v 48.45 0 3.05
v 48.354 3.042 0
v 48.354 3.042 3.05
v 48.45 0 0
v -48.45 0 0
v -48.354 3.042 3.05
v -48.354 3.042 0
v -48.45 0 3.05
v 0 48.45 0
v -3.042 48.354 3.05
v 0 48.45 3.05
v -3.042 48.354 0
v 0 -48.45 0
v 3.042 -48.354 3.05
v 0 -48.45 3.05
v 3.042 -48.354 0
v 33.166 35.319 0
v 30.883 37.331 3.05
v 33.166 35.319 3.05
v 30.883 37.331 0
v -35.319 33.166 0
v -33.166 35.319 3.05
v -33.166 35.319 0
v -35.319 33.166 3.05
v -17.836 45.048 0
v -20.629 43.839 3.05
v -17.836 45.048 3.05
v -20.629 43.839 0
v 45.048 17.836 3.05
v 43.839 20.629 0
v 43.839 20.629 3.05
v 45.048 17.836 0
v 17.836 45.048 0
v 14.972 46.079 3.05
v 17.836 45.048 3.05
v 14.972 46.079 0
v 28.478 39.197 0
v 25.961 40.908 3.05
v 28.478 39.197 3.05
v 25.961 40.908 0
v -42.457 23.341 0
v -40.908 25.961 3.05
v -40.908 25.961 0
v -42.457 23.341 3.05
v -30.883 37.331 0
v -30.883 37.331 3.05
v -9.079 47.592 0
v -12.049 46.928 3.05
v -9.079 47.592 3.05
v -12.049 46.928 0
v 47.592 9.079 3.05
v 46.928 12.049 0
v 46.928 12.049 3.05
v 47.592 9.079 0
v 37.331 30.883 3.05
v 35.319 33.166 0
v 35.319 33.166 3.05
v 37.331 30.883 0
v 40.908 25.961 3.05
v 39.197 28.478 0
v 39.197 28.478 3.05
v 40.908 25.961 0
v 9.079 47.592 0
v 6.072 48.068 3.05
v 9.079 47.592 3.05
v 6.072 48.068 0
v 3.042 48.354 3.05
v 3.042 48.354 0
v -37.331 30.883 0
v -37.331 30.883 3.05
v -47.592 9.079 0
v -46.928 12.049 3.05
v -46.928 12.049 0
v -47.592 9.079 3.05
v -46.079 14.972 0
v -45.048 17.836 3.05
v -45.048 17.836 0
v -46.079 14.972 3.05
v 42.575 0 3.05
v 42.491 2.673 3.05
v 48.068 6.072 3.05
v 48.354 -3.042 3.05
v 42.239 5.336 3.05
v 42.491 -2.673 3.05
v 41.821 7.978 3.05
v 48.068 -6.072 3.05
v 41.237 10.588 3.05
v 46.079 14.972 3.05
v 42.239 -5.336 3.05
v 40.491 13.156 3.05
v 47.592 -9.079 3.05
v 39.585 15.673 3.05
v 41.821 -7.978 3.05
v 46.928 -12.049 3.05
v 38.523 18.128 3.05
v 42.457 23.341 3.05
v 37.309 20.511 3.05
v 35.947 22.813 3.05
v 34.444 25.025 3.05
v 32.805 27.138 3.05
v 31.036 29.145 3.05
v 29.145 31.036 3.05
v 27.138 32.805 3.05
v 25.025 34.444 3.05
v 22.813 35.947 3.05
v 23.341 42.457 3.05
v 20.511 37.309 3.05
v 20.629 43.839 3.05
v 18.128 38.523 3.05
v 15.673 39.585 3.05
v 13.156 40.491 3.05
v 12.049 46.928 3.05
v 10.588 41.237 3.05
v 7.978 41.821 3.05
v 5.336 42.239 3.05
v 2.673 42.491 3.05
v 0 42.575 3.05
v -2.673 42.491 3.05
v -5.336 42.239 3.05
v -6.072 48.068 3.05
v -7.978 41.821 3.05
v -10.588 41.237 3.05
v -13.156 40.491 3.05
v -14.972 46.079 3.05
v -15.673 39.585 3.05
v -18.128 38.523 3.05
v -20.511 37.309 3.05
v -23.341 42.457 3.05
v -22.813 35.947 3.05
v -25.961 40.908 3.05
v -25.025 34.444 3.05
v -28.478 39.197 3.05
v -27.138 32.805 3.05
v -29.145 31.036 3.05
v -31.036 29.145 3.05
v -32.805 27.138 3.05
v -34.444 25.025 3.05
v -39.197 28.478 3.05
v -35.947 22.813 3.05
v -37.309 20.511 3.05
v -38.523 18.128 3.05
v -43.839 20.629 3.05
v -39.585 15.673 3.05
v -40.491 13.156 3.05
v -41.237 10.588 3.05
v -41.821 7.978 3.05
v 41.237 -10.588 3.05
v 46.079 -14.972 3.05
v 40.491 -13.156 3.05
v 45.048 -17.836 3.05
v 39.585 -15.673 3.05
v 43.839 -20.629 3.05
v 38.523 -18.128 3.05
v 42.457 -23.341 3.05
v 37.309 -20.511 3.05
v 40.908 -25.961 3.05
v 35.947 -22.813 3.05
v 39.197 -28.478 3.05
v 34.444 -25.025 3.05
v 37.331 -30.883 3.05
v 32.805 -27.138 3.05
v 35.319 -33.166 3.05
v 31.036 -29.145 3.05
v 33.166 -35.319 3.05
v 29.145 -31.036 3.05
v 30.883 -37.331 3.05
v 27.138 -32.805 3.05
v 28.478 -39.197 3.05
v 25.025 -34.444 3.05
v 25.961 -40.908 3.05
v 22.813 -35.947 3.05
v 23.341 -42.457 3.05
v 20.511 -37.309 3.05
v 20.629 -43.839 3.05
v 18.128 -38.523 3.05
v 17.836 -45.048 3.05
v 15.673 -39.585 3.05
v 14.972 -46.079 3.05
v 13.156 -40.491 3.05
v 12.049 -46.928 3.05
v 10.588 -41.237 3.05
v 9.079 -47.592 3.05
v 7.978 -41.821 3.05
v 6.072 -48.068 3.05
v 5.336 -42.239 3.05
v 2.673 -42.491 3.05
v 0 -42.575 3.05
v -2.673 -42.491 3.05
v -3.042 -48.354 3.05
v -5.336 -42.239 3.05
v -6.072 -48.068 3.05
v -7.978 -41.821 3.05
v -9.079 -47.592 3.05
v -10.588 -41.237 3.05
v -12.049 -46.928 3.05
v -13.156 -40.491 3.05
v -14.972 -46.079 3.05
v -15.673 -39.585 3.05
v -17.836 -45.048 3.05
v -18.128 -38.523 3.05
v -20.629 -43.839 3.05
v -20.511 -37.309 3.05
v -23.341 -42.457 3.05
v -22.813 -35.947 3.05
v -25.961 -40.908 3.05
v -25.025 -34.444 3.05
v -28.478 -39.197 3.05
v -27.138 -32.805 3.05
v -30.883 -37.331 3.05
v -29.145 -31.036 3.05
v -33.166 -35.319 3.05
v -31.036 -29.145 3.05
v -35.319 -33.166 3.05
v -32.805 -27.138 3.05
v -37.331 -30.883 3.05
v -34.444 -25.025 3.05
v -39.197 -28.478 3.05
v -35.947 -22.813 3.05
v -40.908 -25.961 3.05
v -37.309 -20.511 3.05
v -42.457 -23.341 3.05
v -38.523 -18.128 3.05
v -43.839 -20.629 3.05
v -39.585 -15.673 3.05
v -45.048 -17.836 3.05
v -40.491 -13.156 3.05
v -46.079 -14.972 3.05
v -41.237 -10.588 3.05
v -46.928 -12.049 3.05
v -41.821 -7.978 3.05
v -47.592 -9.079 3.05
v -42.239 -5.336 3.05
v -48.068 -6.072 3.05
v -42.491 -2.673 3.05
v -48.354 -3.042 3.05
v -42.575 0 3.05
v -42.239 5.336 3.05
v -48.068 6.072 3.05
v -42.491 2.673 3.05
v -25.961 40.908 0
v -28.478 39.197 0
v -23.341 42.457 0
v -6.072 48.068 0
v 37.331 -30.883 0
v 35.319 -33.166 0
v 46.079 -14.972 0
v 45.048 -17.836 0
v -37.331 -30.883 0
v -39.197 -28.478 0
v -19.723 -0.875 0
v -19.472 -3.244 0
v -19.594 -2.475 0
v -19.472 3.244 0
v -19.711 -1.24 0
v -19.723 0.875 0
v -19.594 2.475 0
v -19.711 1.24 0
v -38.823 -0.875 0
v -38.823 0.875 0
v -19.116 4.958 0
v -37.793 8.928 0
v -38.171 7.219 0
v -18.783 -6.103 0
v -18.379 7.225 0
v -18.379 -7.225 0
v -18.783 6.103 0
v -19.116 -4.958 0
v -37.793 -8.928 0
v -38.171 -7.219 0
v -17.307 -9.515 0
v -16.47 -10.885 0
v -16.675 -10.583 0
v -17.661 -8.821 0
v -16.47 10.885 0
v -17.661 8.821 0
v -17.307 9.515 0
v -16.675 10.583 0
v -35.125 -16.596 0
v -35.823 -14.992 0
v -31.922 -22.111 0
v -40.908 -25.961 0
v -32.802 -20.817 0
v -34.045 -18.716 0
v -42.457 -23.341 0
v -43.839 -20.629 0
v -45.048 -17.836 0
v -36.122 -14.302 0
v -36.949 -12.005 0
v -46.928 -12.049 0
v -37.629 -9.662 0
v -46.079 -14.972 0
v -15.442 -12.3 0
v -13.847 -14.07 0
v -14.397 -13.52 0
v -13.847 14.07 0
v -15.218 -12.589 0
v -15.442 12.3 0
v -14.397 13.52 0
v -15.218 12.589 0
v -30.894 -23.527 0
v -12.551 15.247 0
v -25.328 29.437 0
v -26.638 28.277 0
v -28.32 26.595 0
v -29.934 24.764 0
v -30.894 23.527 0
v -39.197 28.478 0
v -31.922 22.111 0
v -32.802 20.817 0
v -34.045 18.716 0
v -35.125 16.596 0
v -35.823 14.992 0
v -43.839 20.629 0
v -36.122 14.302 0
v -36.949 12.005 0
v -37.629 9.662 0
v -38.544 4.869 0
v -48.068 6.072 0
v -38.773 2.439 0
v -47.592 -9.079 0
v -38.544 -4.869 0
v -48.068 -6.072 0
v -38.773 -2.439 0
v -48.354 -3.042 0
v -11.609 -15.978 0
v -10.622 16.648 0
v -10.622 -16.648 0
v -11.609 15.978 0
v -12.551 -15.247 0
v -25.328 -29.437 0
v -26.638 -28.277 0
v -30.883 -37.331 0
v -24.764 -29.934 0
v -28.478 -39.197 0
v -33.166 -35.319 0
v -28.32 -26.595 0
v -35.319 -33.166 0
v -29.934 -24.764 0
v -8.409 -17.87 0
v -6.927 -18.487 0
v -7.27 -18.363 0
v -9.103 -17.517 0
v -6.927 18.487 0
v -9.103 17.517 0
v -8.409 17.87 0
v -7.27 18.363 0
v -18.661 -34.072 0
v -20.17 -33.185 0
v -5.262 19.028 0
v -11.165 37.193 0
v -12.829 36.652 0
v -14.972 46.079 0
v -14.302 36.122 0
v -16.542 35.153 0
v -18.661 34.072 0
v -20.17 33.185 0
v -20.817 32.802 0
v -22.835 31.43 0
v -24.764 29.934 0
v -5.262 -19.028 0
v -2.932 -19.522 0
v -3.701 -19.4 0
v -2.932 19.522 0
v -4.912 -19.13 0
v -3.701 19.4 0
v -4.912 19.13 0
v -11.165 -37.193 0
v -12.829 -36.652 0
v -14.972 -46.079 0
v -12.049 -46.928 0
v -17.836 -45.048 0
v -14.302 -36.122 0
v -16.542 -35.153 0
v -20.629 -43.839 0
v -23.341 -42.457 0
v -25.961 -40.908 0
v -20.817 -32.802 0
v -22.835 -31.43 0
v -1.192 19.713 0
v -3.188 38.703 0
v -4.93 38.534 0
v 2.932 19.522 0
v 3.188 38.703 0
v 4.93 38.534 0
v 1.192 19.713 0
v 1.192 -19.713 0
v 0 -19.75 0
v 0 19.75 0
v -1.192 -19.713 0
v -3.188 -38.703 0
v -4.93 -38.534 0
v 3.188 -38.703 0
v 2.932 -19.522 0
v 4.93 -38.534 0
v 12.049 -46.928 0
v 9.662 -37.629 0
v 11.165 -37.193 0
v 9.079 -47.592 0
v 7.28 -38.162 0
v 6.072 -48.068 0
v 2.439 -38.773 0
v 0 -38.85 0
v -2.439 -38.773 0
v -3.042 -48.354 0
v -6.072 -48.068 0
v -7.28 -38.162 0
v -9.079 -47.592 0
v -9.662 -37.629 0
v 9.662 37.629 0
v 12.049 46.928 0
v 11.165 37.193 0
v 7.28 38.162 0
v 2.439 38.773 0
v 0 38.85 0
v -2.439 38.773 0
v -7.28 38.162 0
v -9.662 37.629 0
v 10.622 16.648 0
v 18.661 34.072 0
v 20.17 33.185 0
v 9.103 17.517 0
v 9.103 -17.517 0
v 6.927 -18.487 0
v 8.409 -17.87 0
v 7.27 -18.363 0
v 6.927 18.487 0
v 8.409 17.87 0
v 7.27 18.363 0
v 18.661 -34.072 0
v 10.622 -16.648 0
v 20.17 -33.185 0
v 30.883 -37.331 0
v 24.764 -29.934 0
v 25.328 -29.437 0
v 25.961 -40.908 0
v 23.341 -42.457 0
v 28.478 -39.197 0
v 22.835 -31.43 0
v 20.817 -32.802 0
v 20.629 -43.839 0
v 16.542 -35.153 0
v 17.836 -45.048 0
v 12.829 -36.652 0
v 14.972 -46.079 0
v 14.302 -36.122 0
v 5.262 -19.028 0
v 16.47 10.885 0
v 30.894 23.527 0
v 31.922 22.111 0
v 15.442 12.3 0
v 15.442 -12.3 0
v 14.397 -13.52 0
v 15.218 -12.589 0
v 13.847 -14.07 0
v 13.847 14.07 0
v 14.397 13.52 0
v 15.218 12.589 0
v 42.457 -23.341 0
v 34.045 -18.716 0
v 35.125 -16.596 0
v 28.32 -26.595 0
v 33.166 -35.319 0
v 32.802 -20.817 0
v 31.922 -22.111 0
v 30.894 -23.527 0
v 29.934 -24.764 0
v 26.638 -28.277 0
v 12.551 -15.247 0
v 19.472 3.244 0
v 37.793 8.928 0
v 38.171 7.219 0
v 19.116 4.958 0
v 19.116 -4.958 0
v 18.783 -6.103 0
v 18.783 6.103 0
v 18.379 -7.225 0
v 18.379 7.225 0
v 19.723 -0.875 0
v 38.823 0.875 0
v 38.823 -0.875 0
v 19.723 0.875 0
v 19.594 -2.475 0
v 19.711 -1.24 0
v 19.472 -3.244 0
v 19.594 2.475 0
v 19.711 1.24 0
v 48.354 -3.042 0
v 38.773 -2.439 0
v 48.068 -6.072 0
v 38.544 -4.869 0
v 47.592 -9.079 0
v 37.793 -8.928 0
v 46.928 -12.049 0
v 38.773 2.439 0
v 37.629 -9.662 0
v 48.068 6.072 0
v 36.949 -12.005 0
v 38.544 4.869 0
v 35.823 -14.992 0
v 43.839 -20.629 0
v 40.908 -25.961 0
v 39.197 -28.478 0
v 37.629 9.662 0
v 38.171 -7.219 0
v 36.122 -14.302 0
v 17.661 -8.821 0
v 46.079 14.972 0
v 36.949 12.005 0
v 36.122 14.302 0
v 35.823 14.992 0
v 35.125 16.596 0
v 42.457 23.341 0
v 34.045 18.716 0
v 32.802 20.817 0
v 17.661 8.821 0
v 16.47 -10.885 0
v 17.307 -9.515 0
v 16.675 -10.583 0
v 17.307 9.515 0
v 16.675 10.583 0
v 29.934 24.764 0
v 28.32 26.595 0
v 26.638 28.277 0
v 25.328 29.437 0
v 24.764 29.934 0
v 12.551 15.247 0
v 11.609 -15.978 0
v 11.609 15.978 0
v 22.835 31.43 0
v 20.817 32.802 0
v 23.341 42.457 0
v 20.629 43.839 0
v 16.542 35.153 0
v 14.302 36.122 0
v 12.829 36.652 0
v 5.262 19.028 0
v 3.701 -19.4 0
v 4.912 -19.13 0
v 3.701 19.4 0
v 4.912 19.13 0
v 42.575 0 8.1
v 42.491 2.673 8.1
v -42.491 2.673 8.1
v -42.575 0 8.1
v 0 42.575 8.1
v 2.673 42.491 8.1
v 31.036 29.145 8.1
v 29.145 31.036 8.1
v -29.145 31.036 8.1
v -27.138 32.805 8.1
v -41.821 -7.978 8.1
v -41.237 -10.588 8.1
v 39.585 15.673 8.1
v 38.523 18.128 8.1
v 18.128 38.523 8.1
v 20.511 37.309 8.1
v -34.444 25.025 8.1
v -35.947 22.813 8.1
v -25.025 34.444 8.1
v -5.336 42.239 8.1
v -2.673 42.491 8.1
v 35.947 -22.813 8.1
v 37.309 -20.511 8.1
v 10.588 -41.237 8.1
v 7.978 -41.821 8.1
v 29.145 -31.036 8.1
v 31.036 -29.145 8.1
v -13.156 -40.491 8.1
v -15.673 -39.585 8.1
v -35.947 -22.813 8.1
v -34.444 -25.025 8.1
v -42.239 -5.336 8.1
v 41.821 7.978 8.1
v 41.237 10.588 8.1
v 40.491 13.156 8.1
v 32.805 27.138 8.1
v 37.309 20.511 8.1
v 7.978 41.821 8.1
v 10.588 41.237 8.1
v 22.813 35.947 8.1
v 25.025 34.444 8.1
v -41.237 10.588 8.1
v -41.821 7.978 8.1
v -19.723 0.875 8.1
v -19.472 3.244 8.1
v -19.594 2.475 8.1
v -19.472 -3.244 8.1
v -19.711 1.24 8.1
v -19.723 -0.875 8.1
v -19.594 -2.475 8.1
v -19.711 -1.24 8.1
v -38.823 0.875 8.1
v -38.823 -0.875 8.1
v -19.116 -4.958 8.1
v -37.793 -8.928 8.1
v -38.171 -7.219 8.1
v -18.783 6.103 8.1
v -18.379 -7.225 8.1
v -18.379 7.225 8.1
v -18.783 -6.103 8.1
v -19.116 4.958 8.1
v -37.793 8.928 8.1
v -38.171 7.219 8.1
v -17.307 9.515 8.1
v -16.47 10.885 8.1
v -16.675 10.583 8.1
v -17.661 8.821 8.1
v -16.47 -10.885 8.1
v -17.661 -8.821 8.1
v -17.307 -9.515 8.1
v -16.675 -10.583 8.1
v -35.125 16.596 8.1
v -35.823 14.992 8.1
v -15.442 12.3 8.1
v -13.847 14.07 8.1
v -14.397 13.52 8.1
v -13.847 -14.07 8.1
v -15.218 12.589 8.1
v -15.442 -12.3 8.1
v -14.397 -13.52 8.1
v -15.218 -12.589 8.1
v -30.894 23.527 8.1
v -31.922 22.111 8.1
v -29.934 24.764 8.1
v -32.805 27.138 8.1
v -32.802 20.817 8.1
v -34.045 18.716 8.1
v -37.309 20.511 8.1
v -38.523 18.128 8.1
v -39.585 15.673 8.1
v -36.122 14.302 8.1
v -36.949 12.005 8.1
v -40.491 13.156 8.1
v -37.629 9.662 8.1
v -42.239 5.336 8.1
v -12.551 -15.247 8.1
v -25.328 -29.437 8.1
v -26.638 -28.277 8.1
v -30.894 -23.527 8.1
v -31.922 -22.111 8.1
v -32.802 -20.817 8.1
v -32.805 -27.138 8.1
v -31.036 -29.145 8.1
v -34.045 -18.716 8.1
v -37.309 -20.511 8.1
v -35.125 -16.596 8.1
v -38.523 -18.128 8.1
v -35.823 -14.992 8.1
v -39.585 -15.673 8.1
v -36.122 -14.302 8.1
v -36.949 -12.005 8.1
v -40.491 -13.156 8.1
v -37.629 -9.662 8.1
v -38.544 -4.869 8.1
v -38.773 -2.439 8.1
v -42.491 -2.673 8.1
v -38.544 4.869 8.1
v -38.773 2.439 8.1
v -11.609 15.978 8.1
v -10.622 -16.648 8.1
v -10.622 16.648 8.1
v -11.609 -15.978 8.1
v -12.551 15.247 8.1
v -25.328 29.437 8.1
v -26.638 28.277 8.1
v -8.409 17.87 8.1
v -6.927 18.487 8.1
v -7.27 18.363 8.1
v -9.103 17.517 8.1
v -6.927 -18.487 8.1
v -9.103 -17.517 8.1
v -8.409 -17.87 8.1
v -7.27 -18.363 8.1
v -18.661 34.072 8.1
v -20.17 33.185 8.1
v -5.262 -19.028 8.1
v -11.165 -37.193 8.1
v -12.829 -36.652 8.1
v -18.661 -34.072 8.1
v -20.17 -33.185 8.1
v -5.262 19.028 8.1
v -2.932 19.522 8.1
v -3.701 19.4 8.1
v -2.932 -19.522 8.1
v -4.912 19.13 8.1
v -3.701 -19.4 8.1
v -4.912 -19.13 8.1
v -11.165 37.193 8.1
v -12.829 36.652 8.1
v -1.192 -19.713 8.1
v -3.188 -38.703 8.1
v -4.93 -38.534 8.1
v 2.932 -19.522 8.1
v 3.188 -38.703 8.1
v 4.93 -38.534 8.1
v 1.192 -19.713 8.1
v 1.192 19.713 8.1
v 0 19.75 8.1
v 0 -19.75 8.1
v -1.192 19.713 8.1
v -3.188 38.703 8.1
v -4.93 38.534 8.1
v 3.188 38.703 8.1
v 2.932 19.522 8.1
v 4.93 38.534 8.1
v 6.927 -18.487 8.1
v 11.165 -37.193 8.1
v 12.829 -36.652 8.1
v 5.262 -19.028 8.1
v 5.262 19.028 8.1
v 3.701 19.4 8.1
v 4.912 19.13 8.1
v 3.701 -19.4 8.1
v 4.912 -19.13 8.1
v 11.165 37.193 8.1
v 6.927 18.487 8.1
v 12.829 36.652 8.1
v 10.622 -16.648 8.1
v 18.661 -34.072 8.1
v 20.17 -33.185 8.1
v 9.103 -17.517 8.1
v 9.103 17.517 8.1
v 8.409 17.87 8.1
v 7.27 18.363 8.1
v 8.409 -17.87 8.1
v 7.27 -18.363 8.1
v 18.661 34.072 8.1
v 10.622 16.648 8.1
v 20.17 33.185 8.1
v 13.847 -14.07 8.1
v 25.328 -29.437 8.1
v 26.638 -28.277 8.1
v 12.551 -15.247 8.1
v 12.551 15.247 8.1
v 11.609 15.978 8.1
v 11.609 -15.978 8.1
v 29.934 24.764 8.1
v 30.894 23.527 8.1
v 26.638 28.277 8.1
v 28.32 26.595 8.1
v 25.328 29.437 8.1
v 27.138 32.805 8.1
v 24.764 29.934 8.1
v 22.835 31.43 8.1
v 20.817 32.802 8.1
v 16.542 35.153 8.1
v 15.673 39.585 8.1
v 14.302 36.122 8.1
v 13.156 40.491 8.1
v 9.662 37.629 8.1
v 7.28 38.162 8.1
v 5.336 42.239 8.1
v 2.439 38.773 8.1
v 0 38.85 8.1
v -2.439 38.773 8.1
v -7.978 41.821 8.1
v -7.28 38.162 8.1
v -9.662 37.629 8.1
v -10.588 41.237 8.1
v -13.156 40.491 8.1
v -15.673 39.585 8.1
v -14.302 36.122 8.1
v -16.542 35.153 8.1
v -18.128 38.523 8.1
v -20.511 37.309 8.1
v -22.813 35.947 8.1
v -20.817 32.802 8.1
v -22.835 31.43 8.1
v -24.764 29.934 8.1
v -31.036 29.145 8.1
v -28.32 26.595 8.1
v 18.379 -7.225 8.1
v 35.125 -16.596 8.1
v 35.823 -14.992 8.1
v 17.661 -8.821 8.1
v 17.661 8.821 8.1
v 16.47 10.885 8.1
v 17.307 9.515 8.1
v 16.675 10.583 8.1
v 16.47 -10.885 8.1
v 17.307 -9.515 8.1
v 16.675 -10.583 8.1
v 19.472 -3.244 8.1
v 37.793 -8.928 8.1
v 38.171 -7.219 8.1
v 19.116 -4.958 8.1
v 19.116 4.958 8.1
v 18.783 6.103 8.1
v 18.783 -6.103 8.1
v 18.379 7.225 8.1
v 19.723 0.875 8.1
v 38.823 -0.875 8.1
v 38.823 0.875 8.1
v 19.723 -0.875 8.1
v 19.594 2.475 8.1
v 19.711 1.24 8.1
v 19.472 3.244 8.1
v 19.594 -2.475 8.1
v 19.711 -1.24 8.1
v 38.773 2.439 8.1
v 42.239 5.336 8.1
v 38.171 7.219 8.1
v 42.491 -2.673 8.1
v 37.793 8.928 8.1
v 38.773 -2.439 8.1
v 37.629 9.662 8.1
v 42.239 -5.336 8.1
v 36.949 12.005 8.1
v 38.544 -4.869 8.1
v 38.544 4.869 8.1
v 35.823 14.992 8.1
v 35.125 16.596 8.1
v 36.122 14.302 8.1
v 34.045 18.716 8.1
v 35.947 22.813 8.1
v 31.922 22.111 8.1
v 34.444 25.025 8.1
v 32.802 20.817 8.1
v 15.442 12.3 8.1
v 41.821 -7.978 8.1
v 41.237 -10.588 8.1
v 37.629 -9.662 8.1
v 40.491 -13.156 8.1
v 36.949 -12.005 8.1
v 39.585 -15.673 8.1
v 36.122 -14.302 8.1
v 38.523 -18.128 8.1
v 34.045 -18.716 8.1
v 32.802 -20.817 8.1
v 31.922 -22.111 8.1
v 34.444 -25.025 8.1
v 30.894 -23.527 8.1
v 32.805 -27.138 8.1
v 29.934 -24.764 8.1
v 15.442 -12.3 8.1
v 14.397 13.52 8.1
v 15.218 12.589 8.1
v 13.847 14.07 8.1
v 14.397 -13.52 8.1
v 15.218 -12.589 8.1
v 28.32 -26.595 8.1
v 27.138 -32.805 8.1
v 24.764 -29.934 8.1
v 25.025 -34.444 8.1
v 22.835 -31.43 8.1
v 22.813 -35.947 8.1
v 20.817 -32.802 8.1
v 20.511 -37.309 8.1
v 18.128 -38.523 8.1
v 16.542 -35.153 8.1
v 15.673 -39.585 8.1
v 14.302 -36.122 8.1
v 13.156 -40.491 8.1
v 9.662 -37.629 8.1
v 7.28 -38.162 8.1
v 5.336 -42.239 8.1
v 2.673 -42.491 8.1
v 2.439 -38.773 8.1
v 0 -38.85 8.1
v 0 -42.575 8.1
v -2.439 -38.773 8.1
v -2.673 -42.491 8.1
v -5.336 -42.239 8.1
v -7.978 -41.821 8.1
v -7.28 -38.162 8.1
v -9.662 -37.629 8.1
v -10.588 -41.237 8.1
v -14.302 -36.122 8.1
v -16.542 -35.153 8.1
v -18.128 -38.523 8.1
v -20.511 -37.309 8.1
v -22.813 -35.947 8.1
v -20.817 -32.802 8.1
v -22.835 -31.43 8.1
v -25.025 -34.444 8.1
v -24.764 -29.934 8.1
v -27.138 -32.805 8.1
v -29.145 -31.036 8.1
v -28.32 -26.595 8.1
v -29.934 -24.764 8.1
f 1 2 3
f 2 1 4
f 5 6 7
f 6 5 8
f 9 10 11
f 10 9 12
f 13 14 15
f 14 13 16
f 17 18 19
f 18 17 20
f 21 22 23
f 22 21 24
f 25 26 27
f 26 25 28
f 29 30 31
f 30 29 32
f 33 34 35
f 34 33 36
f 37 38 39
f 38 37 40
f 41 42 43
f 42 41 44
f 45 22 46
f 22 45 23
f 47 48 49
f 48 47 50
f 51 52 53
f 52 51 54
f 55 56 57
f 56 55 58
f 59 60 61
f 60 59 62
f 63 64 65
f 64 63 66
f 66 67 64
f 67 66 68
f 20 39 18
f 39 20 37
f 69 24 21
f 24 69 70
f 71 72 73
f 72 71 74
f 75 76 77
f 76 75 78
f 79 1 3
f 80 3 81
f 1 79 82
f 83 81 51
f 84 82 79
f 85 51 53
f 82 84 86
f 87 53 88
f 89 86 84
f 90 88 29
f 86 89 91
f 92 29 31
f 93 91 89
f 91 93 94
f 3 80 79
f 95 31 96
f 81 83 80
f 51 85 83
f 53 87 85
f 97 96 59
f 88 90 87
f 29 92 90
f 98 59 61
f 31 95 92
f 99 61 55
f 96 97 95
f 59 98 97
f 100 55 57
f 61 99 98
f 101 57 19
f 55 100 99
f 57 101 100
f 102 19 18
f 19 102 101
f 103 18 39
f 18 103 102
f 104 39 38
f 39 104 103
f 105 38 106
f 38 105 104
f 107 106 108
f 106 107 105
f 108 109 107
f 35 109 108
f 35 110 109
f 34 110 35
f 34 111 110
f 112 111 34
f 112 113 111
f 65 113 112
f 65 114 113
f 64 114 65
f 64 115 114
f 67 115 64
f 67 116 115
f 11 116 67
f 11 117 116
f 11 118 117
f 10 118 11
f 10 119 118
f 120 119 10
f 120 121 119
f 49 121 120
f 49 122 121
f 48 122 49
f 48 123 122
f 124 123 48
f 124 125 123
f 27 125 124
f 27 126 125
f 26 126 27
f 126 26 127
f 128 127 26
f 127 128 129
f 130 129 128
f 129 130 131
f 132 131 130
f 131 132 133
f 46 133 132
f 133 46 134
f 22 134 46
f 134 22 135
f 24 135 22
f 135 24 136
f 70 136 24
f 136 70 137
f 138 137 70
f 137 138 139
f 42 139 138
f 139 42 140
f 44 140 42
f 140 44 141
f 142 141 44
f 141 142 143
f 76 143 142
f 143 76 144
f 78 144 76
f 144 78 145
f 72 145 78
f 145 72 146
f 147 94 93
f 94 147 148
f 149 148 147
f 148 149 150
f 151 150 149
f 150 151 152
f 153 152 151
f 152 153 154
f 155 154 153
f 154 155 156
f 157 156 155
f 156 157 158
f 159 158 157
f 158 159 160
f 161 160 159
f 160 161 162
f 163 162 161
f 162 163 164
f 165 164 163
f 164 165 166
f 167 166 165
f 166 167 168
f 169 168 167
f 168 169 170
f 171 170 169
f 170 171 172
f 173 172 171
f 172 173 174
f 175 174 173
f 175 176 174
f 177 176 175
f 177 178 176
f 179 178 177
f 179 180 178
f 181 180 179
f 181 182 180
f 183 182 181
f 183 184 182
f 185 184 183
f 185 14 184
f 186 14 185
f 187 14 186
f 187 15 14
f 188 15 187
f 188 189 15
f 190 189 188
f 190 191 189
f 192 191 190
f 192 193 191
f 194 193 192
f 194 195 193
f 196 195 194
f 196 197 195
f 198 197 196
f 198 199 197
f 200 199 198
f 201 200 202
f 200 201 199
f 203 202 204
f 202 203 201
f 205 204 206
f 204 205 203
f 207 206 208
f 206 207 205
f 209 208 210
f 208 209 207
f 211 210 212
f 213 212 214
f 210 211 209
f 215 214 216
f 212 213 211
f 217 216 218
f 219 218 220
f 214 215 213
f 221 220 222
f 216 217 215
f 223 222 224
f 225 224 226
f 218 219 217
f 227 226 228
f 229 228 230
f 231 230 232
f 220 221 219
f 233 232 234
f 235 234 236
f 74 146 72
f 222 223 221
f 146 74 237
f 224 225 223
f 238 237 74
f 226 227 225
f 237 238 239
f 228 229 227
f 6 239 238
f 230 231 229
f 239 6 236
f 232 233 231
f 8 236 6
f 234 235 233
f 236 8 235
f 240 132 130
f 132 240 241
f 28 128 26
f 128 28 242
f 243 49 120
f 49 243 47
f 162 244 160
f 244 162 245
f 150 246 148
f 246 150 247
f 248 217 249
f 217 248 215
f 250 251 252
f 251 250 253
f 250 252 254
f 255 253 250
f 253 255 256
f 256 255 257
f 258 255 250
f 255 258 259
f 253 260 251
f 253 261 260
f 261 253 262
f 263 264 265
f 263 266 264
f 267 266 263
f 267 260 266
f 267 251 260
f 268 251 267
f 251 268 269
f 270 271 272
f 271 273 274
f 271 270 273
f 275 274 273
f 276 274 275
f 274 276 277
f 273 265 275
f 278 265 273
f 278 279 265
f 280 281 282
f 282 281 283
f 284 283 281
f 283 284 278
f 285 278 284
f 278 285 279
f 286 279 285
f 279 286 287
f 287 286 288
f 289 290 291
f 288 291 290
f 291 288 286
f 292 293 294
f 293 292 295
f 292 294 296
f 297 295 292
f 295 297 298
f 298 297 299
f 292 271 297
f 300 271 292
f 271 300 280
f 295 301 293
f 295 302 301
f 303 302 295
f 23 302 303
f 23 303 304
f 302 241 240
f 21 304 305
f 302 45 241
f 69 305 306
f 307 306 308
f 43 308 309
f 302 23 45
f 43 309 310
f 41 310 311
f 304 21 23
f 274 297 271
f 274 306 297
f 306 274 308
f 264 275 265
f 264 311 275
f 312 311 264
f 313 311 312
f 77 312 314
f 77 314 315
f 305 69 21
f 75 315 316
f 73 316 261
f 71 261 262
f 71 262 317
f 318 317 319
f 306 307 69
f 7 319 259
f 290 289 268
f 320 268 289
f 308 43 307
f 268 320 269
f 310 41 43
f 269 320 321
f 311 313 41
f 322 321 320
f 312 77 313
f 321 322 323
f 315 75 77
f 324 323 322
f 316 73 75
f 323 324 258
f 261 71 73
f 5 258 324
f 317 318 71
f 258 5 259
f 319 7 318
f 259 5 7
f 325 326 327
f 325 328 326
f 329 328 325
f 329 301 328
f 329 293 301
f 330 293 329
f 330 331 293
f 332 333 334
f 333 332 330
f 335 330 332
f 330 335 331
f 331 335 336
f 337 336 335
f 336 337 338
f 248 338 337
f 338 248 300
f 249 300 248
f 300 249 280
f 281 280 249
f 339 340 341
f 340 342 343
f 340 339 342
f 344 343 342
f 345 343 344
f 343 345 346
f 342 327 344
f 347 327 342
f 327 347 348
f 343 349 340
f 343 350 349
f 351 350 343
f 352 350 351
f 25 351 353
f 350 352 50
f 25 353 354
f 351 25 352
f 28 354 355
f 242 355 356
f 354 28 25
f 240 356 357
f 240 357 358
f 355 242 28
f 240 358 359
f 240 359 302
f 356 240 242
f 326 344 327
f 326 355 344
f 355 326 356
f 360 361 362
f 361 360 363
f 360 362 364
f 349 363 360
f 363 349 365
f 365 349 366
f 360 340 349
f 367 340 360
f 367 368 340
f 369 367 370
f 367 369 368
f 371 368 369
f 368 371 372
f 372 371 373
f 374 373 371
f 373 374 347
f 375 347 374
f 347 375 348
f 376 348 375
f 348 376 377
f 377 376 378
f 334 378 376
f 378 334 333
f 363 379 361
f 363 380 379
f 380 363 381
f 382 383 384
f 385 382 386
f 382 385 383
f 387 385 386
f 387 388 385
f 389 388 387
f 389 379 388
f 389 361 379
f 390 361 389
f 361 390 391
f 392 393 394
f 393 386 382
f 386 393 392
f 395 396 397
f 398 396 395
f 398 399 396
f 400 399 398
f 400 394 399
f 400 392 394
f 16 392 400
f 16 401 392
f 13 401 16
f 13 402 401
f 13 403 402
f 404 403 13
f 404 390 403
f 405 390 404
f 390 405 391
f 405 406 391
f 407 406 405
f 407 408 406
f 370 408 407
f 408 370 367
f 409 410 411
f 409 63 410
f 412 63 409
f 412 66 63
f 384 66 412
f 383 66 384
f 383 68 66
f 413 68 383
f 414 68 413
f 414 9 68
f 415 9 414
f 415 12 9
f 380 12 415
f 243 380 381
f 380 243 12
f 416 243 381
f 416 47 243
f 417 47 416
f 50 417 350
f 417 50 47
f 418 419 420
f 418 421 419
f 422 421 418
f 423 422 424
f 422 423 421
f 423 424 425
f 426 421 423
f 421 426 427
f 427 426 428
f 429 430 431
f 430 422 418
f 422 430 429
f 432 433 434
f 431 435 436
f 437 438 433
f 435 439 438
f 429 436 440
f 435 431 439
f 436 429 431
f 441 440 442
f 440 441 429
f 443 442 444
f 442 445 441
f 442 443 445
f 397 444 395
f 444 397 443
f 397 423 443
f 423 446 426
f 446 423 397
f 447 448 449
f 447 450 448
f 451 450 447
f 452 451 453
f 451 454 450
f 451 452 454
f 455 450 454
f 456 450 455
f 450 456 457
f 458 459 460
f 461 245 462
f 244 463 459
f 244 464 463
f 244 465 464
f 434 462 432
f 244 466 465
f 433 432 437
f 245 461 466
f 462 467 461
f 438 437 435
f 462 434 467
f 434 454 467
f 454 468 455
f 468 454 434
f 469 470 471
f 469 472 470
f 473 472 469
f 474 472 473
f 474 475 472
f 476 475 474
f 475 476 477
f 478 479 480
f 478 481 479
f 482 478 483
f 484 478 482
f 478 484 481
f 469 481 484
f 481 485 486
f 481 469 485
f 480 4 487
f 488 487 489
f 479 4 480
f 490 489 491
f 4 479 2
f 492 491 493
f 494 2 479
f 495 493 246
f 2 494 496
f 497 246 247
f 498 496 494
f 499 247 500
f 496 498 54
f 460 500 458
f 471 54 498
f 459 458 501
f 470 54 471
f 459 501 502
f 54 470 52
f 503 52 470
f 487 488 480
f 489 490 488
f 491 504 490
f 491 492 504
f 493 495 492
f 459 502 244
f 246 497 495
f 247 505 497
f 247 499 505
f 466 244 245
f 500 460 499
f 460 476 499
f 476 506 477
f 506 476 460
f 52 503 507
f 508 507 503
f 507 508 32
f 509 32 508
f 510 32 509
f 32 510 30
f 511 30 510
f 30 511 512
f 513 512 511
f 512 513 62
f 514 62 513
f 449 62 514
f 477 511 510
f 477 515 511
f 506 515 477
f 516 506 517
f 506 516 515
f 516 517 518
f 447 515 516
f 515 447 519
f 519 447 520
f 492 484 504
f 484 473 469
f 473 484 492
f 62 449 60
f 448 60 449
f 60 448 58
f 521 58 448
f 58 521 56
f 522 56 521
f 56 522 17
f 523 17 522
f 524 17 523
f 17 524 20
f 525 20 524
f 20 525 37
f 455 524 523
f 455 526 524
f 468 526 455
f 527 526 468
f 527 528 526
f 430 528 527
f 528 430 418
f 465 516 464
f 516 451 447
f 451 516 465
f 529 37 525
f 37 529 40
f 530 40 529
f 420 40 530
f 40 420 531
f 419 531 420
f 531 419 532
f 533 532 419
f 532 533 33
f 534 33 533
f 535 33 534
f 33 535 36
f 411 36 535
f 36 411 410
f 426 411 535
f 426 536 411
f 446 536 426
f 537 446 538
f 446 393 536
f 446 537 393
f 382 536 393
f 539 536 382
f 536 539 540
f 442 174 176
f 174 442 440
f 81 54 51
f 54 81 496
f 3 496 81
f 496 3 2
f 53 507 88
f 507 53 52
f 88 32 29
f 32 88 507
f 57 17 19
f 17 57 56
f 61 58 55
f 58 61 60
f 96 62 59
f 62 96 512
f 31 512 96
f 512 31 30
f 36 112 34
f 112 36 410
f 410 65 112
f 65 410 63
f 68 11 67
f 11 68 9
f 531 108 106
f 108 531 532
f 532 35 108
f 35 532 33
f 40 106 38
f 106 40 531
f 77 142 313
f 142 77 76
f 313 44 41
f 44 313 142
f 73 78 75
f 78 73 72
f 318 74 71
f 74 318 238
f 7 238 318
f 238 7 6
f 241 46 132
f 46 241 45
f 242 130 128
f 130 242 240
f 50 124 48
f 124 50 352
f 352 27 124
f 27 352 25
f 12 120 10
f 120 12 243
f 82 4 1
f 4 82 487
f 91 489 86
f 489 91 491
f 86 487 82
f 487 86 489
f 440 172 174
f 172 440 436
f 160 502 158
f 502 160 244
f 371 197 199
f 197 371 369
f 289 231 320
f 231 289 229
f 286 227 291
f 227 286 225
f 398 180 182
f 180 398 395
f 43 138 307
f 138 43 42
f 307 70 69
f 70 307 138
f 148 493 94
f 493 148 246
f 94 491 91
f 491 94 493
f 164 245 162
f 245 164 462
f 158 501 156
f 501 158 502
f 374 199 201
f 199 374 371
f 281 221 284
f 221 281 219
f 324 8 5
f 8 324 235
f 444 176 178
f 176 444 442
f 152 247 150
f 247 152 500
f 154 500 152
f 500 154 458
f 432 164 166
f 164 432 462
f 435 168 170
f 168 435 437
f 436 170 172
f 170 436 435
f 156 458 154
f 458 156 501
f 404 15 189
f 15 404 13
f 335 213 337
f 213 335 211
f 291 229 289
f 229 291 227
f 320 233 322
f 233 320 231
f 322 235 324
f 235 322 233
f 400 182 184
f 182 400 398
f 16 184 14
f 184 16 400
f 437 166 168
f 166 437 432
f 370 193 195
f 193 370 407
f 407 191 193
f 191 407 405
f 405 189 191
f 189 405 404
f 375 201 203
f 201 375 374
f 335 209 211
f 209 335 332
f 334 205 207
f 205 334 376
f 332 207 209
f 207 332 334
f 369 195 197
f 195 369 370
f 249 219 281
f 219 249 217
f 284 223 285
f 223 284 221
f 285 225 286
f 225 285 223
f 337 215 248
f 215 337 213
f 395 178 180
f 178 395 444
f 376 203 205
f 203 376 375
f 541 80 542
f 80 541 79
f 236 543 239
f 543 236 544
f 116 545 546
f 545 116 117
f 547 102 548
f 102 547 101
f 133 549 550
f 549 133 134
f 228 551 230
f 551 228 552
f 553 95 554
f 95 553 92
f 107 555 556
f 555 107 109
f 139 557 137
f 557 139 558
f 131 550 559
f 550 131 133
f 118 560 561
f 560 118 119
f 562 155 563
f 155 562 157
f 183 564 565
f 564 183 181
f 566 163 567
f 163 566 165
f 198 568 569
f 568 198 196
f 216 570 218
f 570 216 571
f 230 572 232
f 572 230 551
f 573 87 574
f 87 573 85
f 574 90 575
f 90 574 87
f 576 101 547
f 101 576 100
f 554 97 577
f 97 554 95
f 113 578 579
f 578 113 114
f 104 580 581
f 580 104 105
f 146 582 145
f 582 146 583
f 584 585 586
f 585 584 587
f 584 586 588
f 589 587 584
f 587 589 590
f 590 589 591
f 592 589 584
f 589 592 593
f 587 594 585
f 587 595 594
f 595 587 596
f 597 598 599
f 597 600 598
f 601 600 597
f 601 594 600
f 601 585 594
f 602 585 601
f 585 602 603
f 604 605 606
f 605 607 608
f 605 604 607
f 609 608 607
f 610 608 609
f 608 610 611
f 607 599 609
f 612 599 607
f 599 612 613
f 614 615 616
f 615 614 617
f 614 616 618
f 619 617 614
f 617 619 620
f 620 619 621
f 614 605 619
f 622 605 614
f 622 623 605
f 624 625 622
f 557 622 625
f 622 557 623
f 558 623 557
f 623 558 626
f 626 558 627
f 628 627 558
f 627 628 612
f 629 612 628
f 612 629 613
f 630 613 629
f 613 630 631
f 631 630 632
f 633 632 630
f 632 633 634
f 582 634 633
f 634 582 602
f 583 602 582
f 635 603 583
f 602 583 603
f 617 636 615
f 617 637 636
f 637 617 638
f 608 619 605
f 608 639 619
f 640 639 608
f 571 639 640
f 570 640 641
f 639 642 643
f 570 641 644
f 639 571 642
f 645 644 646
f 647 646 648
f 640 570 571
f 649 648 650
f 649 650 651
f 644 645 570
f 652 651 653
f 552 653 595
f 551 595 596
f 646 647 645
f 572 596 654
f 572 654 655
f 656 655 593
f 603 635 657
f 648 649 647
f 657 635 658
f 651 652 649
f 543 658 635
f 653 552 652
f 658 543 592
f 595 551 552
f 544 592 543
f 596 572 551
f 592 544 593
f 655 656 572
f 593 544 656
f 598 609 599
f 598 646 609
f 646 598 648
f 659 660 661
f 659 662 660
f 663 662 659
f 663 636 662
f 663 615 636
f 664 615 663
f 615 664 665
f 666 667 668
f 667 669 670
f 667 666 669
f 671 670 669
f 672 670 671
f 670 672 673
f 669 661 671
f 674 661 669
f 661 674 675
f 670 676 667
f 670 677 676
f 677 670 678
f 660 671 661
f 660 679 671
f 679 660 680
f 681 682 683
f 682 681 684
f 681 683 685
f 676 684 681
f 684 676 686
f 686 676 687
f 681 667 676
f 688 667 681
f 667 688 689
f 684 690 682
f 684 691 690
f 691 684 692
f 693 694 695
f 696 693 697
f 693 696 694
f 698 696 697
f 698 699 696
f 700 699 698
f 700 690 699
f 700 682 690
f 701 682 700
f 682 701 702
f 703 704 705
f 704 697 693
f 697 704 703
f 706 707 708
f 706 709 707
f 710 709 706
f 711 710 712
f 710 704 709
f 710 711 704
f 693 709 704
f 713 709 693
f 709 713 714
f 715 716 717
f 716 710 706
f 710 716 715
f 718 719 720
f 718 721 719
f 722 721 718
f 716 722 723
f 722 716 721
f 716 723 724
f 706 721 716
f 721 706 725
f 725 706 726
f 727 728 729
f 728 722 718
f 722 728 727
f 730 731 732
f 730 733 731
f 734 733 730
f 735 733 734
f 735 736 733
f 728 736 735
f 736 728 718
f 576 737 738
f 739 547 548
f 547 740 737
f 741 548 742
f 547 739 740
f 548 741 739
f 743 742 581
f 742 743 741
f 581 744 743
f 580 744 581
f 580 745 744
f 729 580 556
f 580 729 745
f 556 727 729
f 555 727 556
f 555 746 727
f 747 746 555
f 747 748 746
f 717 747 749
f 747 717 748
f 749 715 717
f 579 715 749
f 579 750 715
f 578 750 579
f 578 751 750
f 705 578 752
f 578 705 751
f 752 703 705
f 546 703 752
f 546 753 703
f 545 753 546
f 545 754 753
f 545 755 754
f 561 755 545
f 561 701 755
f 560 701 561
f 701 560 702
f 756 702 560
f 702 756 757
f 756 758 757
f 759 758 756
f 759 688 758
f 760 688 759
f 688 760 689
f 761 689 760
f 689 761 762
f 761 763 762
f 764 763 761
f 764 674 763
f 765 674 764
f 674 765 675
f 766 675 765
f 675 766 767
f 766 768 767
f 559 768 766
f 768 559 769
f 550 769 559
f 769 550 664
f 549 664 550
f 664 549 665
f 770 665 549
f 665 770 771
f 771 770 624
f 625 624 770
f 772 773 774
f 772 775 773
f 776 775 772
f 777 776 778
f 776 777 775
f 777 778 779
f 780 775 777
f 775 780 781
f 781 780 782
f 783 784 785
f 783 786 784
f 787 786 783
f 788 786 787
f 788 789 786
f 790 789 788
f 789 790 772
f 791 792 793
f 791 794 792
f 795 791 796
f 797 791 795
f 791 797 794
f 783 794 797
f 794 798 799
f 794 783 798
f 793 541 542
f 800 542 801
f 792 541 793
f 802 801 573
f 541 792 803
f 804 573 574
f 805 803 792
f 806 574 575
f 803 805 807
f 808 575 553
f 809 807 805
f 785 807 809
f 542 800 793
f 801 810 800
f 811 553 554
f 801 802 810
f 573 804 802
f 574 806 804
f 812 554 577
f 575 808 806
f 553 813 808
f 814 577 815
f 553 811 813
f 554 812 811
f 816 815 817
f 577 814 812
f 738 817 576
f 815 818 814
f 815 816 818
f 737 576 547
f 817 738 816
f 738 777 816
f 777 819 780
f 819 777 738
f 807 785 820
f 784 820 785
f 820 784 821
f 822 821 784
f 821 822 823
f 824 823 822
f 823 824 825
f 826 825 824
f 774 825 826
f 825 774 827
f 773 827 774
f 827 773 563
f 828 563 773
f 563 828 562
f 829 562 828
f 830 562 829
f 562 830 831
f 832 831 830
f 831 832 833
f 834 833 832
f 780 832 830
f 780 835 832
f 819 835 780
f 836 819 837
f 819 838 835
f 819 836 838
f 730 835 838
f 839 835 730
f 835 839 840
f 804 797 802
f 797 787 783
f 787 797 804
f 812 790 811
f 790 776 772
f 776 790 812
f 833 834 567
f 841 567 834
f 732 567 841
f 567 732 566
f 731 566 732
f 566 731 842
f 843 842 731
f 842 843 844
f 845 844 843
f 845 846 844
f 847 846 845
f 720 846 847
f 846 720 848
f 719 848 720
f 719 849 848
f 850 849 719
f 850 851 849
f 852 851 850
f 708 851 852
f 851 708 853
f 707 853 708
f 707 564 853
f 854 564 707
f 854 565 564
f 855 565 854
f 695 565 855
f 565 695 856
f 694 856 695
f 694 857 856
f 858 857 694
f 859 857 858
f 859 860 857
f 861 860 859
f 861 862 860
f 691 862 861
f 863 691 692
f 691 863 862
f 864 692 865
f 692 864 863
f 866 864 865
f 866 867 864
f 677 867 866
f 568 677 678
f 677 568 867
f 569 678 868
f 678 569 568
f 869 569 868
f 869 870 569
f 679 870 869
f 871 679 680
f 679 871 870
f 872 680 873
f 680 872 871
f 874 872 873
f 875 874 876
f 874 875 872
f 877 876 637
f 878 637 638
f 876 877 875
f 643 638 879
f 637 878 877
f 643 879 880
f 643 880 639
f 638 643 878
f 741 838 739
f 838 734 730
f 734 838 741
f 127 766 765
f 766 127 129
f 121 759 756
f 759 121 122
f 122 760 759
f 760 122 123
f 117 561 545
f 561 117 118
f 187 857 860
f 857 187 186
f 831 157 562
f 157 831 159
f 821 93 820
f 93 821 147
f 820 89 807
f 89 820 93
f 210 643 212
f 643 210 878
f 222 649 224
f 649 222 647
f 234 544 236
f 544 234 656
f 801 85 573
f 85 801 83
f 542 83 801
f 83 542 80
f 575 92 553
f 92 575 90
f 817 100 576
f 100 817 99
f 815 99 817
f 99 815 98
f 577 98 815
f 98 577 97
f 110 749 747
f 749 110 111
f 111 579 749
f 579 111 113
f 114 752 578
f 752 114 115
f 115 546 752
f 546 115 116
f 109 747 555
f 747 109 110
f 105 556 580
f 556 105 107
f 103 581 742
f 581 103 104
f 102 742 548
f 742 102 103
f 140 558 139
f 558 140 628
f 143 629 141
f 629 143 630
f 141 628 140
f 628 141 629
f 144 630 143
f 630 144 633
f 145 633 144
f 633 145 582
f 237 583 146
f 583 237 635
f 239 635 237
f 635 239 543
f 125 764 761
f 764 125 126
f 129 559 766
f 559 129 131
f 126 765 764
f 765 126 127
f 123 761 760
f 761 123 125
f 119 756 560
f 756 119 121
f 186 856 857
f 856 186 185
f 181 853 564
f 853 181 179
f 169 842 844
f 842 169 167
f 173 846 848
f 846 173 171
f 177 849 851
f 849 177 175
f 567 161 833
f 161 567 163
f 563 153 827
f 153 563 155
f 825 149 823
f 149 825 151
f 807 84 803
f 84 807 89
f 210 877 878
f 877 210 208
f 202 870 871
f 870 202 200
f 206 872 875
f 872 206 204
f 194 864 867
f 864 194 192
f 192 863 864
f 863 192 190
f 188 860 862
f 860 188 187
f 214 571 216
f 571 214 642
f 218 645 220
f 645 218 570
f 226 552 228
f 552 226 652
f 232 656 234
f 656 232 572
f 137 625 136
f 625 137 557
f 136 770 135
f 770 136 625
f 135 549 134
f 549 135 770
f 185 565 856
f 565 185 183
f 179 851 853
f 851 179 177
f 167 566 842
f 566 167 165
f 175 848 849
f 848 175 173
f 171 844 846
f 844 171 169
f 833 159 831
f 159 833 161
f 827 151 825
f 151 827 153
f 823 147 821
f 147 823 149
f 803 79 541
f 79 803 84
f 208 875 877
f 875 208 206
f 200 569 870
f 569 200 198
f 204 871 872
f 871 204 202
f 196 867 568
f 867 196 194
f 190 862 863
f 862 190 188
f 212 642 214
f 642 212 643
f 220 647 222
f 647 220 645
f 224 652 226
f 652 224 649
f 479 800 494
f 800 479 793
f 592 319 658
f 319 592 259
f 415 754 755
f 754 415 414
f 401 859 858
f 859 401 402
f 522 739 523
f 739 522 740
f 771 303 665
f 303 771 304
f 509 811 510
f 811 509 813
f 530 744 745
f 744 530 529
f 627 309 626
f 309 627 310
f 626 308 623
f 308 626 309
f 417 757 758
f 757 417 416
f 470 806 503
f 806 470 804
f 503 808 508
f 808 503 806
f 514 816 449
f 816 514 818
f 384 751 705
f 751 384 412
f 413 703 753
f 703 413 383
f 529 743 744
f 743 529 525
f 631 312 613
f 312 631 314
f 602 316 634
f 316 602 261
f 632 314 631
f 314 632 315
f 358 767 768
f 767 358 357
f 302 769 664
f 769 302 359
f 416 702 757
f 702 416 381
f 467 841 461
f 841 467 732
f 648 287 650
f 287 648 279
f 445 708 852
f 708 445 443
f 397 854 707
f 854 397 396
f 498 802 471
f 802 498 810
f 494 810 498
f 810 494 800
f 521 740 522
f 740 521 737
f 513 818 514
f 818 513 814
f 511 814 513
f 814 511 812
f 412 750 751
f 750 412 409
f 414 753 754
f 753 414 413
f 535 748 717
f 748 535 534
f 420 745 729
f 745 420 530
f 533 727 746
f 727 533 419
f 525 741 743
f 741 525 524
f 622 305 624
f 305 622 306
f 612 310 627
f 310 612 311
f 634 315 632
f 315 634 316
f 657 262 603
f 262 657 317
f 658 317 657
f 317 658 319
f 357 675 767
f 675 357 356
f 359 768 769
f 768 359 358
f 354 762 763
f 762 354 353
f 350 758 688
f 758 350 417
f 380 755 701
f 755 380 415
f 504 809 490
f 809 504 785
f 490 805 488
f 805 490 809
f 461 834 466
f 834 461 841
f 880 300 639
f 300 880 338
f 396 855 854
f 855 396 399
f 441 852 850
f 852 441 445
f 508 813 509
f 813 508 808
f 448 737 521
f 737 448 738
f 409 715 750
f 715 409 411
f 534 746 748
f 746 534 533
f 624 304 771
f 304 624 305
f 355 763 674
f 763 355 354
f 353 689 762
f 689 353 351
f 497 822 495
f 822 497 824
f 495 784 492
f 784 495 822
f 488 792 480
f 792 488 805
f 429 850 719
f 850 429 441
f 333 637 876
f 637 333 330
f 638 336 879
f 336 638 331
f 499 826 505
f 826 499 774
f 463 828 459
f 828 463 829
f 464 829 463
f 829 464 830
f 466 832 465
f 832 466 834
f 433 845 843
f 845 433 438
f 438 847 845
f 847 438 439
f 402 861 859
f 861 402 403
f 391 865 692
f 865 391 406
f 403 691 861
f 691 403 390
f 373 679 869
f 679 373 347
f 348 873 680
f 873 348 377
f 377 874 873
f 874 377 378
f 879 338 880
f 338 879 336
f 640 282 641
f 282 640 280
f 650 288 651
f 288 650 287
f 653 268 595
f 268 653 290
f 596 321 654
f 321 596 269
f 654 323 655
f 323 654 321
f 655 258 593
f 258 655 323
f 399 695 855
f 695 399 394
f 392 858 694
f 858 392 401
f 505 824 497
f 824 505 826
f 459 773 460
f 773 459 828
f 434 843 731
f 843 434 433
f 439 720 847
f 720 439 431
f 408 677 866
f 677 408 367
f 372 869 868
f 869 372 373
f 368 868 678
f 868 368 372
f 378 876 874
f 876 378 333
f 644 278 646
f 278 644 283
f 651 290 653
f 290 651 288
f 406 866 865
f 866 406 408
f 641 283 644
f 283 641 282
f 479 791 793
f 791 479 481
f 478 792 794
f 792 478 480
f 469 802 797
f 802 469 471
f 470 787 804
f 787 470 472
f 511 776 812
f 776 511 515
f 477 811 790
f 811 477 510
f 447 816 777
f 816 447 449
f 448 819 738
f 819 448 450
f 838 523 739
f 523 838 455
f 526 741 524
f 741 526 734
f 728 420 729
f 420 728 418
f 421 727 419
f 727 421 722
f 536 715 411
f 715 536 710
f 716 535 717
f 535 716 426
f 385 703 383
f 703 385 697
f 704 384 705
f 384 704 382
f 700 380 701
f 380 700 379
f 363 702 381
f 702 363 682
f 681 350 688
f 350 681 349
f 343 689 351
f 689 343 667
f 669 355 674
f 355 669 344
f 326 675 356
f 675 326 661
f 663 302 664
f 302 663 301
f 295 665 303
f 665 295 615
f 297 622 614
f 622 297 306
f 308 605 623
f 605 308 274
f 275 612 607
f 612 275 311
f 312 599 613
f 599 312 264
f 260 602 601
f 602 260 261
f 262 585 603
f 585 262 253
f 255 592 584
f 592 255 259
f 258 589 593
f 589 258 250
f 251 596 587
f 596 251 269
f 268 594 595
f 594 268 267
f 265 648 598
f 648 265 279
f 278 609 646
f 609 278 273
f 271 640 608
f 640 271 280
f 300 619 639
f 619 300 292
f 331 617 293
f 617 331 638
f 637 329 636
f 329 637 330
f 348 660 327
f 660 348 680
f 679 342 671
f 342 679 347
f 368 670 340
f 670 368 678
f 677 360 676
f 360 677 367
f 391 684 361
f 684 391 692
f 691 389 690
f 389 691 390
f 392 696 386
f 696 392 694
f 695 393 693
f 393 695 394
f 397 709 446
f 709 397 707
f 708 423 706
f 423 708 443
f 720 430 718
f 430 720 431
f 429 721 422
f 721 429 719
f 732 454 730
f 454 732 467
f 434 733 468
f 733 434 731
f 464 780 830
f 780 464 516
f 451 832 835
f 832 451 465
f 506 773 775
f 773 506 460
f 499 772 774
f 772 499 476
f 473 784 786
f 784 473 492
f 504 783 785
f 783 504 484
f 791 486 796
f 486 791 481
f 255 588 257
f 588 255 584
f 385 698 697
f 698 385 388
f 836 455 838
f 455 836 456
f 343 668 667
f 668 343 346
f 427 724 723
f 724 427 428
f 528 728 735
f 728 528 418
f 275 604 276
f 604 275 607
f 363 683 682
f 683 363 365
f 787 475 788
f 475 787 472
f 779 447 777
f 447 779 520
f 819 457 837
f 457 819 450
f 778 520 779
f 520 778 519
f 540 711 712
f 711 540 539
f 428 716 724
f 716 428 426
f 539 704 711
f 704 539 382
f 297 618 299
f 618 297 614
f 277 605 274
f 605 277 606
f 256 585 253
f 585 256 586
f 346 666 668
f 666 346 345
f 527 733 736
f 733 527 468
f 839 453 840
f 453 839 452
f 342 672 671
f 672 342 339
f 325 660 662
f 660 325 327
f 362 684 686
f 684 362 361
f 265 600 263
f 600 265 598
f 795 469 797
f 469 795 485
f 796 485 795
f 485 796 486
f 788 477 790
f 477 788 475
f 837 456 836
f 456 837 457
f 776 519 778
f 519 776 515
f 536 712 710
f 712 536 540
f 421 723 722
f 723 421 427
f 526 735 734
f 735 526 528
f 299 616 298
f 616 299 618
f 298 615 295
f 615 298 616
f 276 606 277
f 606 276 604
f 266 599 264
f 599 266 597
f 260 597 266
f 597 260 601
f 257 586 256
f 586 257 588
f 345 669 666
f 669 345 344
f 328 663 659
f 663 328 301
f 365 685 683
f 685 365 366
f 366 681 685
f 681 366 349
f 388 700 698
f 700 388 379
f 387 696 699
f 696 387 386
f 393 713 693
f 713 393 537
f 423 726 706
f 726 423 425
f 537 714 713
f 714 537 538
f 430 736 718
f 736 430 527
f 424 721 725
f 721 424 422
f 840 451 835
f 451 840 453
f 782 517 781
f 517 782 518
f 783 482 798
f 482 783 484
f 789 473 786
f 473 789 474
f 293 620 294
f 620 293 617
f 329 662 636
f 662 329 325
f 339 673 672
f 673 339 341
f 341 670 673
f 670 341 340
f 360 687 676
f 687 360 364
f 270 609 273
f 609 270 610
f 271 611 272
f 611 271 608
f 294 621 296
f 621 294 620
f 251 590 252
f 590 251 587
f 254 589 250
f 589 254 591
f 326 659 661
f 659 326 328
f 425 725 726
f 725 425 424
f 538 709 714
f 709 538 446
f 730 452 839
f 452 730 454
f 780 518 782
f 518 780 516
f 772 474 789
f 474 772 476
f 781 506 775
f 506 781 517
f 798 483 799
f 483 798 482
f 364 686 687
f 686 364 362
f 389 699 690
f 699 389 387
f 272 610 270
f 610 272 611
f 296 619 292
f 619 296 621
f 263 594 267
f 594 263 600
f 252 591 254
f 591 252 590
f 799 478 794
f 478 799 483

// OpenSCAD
// ----- ----- ----- Declaração de Variáveis ----- ----- ----- //
res=100;
folga1=0.125;

rout1=105/2;
altout1=6.05;
rout2=97.2/2;
altout2=14.3-3.75;
rout3=98.55/2;
altout3=3.75;
rout4=92.65/2;
altout4=14.3;

altchao=3.05;
altsobe=8.1;

rchao=96.9/2;
rint=77.7/2;
rsobe=85.15/2;
rdep=39.5/2;

esp=1.75;
num=30;

difference(){
    translate([0,0,0]){
        cylinder(altchao,rchao,rchao,$fn=res);
        cylinder(altsobe,rsobe,rsobe,$fn=res);
    }
    #cylinder(altsobe,rint,rint,$fn=res);
}

cylinder(altsobe,rdep,rdep,$fn=res);

for(i=[0:1:num]){
    rotate([0,0,i*((360)/num)])translate([0,-esp/2,0])cube([(rsobe+rint)/2,esp,altsobe]);
}
